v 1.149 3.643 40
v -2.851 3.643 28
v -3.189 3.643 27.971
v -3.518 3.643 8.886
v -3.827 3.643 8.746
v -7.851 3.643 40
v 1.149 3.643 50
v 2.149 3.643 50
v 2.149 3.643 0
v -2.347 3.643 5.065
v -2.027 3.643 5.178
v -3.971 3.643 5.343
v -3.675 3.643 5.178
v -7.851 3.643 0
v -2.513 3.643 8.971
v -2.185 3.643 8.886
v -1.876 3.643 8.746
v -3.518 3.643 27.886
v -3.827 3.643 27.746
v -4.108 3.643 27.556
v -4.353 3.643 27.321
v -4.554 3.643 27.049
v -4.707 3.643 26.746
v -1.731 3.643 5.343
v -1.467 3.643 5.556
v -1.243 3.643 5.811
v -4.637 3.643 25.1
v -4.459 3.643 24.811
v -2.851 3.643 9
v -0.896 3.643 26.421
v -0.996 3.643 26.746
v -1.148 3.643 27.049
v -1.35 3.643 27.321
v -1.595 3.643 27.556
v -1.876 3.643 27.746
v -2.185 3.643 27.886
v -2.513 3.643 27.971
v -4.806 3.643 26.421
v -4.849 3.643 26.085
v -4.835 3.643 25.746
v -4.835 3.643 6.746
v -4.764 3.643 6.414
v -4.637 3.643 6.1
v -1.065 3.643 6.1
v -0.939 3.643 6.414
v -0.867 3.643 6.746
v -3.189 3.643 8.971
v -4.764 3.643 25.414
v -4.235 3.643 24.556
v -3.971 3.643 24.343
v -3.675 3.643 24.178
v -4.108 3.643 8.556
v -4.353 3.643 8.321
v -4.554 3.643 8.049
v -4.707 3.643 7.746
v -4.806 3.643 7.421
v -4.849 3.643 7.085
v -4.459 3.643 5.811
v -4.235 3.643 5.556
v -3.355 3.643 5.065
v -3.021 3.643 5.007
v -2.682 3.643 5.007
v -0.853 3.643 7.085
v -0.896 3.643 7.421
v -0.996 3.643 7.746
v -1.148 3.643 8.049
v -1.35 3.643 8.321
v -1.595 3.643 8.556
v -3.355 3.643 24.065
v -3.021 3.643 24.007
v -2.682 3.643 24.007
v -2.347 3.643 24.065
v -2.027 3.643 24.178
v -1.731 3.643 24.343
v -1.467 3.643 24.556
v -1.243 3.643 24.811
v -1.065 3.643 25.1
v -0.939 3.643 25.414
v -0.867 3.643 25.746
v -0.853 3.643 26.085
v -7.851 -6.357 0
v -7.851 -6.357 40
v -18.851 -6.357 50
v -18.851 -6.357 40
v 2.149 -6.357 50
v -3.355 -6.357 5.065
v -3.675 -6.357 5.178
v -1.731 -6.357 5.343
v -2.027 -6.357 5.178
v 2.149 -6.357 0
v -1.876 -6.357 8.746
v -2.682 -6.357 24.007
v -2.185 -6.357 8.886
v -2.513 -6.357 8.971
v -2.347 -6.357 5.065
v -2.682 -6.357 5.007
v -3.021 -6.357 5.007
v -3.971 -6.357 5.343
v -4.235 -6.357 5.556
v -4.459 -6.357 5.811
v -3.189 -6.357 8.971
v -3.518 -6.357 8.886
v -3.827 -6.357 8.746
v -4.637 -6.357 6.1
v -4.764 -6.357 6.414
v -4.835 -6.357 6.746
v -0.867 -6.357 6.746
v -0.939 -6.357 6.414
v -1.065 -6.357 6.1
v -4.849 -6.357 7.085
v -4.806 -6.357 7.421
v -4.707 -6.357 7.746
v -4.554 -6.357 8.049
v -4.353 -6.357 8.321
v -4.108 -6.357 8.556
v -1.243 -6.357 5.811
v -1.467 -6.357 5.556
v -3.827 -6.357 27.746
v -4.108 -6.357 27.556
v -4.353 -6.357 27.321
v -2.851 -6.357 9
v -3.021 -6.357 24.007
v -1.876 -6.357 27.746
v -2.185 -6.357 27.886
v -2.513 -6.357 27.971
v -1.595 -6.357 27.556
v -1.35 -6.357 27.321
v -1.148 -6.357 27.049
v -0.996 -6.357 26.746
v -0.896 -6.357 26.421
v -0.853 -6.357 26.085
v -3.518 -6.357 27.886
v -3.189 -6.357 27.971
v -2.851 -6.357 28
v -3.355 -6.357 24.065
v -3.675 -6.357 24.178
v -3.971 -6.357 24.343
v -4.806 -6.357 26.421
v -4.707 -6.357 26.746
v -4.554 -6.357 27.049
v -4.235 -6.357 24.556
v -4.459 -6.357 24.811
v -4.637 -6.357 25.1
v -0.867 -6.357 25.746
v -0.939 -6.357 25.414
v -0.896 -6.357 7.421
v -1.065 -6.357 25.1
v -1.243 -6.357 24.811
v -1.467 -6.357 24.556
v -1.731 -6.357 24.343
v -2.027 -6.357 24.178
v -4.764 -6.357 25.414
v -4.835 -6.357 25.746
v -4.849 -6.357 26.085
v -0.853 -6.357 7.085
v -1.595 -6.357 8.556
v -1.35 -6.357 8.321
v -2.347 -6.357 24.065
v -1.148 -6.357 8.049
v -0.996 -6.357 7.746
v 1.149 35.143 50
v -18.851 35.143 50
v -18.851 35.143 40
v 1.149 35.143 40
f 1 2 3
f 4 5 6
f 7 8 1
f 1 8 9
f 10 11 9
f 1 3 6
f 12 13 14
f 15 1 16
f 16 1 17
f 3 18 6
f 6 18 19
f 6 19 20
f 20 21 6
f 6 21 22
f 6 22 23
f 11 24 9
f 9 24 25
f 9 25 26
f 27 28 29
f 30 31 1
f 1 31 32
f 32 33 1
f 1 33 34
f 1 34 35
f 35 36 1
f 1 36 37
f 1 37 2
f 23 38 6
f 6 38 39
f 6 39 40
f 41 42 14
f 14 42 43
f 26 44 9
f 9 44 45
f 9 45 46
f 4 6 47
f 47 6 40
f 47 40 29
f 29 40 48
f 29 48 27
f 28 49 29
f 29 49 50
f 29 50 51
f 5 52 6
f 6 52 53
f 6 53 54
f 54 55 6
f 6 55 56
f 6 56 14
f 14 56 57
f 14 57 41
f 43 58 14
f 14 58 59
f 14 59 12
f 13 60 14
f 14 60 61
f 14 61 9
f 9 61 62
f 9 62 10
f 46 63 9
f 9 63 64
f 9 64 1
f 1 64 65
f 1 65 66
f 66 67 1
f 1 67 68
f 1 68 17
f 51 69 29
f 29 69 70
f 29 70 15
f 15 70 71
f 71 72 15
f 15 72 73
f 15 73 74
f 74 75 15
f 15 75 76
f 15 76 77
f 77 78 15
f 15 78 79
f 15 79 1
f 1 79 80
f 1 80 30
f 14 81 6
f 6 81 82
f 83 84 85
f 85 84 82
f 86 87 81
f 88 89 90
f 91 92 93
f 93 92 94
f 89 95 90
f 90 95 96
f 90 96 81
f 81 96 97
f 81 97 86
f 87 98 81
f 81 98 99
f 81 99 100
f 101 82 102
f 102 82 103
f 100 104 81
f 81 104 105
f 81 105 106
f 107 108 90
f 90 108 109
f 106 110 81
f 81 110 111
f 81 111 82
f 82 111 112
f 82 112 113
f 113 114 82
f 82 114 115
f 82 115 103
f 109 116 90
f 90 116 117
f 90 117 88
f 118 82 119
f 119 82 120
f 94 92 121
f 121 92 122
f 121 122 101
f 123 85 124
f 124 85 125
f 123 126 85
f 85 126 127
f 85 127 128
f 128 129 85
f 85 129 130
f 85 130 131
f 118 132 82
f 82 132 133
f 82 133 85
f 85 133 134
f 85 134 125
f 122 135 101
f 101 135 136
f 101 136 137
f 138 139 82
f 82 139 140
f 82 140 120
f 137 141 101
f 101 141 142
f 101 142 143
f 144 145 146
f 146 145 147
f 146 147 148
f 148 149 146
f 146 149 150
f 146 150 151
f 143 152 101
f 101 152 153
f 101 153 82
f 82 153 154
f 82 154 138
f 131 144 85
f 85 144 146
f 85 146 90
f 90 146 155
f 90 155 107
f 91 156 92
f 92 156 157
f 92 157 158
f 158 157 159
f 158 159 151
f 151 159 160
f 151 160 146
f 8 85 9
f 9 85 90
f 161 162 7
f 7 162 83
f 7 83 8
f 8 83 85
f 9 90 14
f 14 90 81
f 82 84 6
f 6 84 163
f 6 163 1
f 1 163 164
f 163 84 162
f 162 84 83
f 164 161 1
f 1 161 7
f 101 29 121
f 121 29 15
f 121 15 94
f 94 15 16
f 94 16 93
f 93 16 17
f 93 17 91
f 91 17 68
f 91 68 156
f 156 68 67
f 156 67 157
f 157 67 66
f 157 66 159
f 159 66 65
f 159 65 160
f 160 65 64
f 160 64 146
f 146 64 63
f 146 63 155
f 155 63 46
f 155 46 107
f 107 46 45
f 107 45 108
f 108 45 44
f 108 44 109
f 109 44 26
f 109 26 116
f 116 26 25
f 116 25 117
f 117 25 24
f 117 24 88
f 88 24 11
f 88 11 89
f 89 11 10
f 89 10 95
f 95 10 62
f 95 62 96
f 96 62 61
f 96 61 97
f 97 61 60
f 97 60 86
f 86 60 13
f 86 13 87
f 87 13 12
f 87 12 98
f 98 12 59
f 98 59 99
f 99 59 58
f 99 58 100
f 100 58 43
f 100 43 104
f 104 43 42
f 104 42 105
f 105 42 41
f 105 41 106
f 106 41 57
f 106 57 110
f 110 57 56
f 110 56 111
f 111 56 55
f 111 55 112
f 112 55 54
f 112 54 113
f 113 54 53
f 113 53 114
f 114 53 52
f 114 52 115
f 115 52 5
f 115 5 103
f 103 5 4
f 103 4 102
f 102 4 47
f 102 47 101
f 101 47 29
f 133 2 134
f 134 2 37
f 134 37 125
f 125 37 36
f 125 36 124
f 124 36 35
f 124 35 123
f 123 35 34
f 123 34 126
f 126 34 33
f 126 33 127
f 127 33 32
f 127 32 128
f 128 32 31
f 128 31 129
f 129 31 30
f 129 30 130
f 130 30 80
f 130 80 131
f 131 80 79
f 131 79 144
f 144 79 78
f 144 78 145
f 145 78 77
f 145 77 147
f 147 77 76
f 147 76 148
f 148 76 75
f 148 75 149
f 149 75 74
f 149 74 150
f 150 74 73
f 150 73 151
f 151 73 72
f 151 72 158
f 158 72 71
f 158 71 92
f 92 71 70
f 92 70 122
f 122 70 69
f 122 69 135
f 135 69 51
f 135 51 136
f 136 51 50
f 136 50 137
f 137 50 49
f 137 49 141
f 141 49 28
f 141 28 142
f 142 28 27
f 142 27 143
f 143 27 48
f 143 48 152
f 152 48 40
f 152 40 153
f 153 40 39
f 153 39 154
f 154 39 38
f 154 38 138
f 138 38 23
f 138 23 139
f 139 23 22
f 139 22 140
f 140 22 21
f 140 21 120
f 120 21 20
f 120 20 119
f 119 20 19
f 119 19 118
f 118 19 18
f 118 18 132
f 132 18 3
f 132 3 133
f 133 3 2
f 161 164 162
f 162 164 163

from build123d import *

# Parameters (mm, degrees)
SKETCH1_W           = 10
SKETCH1_H           = 10
BOSS_EXTRUDE1_DEPTH = 50
SKETCH3_W           = 10
SKETCH3_H           = 10
BOSS_EXTRUDE3_DEPTH = 11
SKETCH8_W           = 20
SKETCH8_H           = 10
BOSS_EXTRUDE4_DEPTH = 23
SKETCH9_R           = 2
CUT_EXTRUDE2_DEPTH  = 23
SKETCH9_4_R         = 2
CUT_EXTRUDE3_DEPTH  = 23
SKETCH8_4_W         = 20
SKETCH8_4_H         = 10
BOSS_EXTRUDE5_DEPTH = 31
SKETCH8_5_W         = 20
SKETCH8_5_H         = 10
BOSS_EXTRUDE6_DEPTH = 31.5


with BuildPart() as part:
    # Sketch1 → Boss-Extrude1 (new body)
    with BuildSketch(Plane.XY):
        with Locations((-2.851282988, -1.356707317)):
            Rectangle(SKETCH1_W, SKETCH1_H)
    extrude(amount=BOSS_EXTRUDE1_DEPTH)

    # Sketch3 → Boss-Extrude3 (add)
    with BuildSketch(Plane.ZY.offset(7.851282988)):
        with Locations((45, -1.356707317)):
            Rectangle(SKETCH3_W, SKETCH3_H)
    extrude(amount=BOSS_EXTRUDE3_DEPTH)

    # Sketch8 → Boss-Extrude4 (add)
    with BuildSketch(Plane(origin=(0, 3.643292683, 0), x_dir=(1, 0, 0), z_dir=(0, 1, 0))):
        with Locations((-8.851282988, -45)):
            Rectangle(SKETCH8_W, SKETCH8_H)
    extrude(amount=BOSS_EXTRUDE4_DEPTH)

    # Sketch9 → Cut-Extrude2 (cut)
    with BuildSketch(Plane(origin=(0, 3.643292683, 0), x_dir=(1, 0, 0), z_dir=(0, 1, 0))):
        with Locations(Location((-2.851282988, -7, 0), (0, 0, 270))):
            Circle(SKETCH9_R)
    extrude(amount=-CUT_EXTRUDE2_DEPTH, mode=Mode.SUBTRACT)

    # Sketch9<4> → Cut-Extrude3 (cut)
    with BuildSketch(Plane(origin=(0, 3.643292683, 0), x_dir=(1, 0, 0), z_dir=(0, 1, 0))):
        with Locations(Location((-2.851282988, -26, 0), (0, 0, 270))):
            Circle(SKETCH9_4_R)
    extrude(amount=-CUT_EXTRUDE3_DEPTH, mode=Mode.SUBTRACT)

    # Sketch8<4> → Boss-Extrude5 (add)
    with BuildSketch(Plane(origin=(0, 3.643292683, 0), x_dir=(1, 0, 0), z_dir=(0, 1, 0))):
        with Locations((-8.851282988, -45)):
            Rectangle(SKETCH8_4_W, SKETCH8_4_H)
    extrude(amount=BOSS_EXTRUDE5_DEPTH)

    # Sketch8<5> → Boss-Extrude6 (add)
    with BuildSketch(Plane(origin=(0, 3.643292683, 0), x_dir=(1, 0, 0), z_dir=(0, 1, 0))):
        with Locations((-8.851282988, -45)):
            Rectangle(SKETCH8_5_W, SKETCH8_5_H)
    extrude(amount=BOSS_EXTRUDE6_DEPTH)


solid = part.part
